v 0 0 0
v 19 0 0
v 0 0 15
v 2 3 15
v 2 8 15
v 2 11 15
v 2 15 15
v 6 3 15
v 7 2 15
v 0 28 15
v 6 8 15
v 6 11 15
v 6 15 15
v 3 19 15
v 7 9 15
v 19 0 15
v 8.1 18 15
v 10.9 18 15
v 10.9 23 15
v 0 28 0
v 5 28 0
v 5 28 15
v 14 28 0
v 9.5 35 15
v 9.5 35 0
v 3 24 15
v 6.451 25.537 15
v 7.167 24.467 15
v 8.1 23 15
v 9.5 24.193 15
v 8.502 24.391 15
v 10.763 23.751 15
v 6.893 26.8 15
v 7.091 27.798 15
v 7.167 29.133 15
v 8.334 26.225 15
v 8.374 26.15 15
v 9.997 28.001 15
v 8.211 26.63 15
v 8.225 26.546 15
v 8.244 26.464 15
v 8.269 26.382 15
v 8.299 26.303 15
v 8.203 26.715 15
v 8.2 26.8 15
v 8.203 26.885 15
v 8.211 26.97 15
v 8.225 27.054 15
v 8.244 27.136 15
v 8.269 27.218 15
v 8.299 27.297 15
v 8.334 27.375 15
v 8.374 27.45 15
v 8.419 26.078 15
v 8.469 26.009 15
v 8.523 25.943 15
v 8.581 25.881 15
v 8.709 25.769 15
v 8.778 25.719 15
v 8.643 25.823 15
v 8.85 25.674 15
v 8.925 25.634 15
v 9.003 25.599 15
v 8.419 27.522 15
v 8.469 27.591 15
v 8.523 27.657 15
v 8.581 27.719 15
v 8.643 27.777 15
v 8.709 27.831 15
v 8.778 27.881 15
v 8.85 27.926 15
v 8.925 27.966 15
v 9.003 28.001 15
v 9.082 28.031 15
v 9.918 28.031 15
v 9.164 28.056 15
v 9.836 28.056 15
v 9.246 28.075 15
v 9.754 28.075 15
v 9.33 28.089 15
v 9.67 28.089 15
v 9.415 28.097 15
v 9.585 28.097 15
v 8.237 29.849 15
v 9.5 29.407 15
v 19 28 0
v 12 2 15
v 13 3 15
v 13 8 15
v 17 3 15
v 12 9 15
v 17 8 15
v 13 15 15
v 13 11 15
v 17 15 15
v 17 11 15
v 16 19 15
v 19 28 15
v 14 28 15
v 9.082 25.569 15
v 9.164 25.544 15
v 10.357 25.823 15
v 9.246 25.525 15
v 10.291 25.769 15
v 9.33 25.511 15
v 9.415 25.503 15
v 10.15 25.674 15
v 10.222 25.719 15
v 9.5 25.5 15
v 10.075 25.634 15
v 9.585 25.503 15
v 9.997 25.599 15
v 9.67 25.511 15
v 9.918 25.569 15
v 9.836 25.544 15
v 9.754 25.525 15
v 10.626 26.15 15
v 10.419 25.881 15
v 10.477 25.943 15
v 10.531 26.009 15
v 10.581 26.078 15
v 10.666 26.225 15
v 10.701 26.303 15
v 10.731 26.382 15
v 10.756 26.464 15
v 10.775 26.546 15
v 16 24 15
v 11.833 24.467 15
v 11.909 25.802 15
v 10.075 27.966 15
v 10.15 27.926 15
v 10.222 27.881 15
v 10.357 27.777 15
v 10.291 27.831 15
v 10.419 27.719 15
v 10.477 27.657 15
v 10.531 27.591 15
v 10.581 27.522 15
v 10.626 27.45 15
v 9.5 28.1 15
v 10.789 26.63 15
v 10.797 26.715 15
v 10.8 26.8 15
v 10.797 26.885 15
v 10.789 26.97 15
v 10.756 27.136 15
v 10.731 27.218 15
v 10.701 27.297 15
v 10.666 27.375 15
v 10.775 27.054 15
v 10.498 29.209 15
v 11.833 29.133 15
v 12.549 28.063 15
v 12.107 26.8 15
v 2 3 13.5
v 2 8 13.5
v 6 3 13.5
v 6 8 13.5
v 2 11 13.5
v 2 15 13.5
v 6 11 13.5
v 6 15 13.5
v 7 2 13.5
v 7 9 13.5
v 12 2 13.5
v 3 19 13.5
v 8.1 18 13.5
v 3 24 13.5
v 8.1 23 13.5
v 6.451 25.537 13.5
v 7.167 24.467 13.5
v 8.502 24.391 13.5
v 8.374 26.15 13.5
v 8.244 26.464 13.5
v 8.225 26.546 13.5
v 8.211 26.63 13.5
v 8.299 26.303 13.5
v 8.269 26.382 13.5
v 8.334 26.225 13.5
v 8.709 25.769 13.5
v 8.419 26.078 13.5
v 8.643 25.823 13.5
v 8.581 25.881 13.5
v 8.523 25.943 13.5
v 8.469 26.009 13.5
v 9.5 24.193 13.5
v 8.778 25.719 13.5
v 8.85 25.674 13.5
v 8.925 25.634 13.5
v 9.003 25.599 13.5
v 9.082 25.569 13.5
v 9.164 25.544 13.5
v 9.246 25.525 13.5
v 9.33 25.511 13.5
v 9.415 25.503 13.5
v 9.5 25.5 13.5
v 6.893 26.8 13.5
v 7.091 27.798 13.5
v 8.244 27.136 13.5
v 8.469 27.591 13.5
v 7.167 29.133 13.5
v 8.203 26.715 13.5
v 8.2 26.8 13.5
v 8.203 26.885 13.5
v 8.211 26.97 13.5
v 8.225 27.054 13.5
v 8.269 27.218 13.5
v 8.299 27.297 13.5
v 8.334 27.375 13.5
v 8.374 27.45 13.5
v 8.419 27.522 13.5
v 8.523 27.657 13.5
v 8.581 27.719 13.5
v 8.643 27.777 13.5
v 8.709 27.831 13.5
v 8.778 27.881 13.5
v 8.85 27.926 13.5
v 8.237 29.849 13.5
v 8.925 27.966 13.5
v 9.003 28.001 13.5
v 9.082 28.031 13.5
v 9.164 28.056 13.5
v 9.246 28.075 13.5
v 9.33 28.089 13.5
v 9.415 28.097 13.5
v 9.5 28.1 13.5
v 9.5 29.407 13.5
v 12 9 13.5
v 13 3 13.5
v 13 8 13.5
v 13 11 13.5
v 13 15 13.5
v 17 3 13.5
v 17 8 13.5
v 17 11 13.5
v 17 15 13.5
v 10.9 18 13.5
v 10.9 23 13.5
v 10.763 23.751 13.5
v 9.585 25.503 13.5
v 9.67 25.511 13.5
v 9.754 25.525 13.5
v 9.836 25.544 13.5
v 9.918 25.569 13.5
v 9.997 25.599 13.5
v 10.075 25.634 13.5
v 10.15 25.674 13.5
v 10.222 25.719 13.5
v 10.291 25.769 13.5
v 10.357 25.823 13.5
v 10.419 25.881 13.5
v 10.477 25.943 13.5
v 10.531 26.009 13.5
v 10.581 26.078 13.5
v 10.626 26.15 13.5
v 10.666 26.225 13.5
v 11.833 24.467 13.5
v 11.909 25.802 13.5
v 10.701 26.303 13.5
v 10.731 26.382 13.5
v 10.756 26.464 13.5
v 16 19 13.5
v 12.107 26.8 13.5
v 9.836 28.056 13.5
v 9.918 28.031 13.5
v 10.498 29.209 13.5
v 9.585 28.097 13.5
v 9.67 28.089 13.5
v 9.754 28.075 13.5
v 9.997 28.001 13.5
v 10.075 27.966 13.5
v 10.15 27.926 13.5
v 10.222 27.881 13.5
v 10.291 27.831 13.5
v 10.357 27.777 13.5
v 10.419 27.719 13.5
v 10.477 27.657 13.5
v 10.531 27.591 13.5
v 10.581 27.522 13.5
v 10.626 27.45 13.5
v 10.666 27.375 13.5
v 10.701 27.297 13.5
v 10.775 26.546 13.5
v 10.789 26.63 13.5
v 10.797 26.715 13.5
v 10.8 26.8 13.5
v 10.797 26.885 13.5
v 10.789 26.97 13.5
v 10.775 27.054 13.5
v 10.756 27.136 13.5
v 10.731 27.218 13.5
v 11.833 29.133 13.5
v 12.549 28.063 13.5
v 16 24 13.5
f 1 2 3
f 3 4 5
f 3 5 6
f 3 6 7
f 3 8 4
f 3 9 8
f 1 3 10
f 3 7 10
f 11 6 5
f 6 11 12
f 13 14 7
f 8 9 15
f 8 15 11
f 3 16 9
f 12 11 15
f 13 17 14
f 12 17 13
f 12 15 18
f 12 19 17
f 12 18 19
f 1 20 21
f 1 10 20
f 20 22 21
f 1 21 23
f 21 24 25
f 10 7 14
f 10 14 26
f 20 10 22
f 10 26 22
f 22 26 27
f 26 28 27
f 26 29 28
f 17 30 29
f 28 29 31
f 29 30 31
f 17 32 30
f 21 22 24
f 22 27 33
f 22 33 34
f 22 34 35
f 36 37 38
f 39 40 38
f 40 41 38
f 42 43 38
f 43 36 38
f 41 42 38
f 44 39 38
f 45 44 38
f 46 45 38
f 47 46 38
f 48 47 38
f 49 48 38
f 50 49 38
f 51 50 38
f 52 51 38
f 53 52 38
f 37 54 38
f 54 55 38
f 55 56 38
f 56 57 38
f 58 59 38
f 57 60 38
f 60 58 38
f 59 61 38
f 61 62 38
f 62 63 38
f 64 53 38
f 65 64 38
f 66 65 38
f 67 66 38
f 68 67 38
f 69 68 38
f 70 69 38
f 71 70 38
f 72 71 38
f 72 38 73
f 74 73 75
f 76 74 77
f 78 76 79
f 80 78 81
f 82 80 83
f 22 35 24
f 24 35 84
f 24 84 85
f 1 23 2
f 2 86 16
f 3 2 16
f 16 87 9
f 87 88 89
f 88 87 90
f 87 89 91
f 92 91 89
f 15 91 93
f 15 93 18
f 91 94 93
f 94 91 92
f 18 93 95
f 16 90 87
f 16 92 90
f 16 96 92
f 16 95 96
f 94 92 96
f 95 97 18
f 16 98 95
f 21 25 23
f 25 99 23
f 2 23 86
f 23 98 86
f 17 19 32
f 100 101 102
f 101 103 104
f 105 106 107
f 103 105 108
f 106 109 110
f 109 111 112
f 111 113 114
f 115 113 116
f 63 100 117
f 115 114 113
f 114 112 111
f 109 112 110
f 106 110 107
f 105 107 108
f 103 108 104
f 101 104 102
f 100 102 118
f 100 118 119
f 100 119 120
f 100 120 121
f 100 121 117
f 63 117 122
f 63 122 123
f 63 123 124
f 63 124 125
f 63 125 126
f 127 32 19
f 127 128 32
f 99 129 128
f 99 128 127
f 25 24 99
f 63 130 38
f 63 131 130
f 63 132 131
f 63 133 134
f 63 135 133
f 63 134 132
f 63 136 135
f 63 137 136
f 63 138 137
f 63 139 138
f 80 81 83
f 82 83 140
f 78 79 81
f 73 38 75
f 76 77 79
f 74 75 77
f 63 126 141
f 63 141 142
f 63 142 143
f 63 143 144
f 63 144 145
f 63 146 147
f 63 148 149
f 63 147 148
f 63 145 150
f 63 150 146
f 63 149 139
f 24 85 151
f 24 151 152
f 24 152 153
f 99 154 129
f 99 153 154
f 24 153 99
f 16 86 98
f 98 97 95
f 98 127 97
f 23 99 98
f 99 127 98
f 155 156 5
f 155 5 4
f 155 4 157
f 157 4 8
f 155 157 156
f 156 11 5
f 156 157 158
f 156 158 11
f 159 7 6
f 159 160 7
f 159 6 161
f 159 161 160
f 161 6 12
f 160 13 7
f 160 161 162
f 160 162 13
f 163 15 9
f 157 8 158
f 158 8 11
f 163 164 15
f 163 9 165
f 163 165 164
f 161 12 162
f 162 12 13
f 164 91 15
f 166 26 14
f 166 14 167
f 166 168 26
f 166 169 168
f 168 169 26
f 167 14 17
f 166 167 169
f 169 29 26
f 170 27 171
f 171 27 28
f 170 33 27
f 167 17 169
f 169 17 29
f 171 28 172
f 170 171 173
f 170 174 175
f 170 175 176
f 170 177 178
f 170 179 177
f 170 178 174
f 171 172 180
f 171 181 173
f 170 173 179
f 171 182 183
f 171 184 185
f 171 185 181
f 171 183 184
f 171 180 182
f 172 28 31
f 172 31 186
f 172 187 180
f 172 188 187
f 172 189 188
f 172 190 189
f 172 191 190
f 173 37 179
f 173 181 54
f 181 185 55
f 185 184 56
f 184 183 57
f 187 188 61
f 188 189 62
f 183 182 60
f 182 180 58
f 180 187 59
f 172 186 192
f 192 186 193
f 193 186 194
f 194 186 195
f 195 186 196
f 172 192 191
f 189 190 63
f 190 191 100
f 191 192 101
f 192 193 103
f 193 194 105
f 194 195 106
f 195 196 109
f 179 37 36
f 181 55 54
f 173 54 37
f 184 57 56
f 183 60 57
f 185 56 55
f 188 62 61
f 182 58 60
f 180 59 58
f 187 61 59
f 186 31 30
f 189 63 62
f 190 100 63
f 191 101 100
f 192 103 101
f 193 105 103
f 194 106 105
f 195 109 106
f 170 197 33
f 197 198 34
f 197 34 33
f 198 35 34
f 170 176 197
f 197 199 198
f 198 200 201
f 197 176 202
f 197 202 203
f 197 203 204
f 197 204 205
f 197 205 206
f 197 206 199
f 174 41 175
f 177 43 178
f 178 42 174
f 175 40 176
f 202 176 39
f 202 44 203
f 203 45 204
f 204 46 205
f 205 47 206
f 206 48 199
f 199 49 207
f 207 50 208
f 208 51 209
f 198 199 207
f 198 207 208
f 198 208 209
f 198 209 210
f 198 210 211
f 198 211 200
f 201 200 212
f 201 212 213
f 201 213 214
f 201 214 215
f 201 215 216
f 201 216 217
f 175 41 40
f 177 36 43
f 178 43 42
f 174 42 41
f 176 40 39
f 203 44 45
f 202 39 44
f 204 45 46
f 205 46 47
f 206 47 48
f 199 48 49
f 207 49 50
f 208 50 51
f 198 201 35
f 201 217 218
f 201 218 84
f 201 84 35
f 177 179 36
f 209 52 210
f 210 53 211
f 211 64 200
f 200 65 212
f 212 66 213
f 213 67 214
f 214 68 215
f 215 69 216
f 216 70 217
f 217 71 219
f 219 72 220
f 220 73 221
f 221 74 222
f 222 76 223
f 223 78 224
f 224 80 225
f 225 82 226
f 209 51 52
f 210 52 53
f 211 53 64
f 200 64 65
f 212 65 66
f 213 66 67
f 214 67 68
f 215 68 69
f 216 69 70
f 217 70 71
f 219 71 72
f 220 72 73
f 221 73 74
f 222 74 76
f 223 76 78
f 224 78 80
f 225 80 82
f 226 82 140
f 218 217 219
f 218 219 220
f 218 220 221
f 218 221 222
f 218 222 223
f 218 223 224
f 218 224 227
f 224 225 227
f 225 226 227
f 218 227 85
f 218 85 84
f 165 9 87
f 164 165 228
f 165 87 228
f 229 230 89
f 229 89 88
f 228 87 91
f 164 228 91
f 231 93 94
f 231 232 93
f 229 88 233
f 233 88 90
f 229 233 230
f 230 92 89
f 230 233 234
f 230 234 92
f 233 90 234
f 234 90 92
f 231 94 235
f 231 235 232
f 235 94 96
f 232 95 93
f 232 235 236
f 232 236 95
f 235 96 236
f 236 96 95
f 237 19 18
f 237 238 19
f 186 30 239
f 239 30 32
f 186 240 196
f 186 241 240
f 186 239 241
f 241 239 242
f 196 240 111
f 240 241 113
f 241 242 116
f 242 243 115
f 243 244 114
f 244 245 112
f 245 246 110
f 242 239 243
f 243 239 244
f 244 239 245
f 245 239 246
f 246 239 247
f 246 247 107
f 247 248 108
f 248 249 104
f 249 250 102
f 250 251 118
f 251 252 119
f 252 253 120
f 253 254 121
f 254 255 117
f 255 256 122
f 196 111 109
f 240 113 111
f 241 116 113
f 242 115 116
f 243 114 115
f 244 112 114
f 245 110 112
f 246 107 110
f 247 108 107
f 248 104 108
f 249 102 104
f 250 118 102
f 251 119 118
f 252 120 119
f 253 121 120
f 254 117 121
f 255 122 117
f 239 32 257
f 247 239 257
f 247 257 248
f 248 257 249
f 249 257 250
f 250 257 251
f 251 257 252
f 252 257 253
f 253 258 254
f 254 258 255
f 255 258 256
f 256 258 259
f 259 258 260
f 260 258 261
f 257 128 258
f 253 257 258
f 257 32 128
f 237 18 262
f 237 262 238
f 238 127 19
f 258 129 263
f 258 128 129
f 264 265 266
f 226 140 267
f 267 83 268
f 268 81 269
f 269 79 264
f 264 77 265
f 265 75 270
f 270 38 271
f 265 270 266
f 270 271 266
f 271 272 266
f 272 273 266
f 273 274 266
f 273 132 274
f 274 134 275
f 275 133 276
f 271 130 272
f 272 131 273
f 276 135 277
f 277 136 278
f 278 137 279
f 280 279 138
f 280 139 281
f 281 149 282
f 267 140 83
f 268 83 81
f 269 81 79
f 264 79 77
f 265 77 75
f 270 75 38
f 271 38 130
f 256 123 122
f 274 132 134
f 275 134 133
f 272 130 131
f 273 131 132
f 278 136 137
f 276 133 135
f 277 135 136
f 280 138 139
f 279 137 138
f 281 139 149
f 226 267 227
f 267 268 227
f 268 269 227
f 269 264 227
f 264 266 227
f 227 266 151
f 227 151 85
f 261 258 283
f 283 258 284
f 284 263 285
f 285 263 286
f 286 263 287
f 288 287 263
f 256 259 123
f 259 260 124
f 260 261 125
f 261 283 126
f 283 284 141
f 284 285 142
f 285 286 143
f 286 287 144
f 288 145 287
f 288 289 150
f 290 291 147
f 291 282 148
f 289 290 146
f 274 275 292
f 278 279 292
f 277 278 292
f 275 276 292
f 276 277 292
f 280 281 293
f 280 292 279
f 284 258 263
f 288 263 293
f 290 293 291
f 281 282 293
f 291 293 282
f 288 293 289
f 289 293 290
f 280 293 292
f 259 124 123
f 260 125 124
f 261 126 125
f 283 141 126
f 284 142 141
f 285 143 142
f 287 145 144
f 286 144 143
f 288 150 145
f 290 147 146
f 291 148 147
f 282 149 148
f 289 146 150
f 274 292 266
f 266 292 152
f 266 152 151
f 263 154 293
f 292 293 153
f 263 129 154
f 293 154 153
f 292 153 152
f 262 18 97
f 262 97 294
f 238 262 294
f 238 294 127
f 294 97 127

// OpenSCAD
// Building facade miniature for board games.
// Millimetres. X=width, Y=height, Z=depth.
// Print flat at Z=0; straight base at Y=0; front at Z=15.
// All recesses are blind and 1.5 mm deep. This is a solid piece.
$fn=96;
depth=15;
recess=1.5;
module rect(x,y,w,h) { translate([x,y]) square([w,h]); }
module disc(x,y,r) { translate([x,y]) circle(r=r); }
module line(a,b,w=1.4) {
    hull() { translate(a) circle(d=w); translate(b) circle(d=w); }
}
module frame(x,y,w,h,t=1.4) {
    difference() { rect(x,y,w,h); rect(x+t,y+t,w-2*t,h-2*t); }
}
module gear(x,y,r=6,inner=2.4) {
    translate([x,y]) difference() {
        polygon([for(i=[0:(r<4?15:23)]) let(n=(r<4?16:24),a=(i+1)*360/n,rr=(i%4<2?r:r-min(1.5,r*0.21))) [rr*cos(a),rr*sin(a)]]);
        circle(r=inner);
    }
}
module car(x,y,w=14,h=5) {
    translate([x,y]) union() {
        polygon([[0,0.8],[0,h*0.48],[w*0.2,h*0.48],
                 [w*0.35,h],[w*0.67,h],[w*0.82,h*0.48],
                 [w,h*0.35],[w,0.8]]);
        disc(w*0.23,0.8,1.3); disc(w*0.77,0.8,1.3);
    }
}
module recycling(x,y,r=6) {
    translate([x,y]) for(a=[0,120,240]) rotate(a) {
        line([-3.8,3.2],[1.2,3.2],1.6);
        polygon([[1.2,1.7],[4.2,3.2],[1.2,4.7]]);
    }
}
module cutface() { translate([0,0,depth-recess]) linear_extrude(height=recess+0.5) facade(); }
// All details are recessed into the same solid facade.
difference() {
    linear_extrude(height=depth) outline();
    cutface();
}


module outline() { polygon([[0,0],[19,0],[19,28],[14,28],[9.5,35],[5,28],[0,28]]); }
module facade() {
    rect(7,2,5,7);
    for(x=[2,13]) rect(x,3,4,5);
    for(x=[2,13]) rect(x,11,4,4);
    polygon([[3,19],[8.1,18],[8.1,23],[3,24]]);
    polygon([[10.9,18],[16,19],[16,24],[10.9,23]]);
    gear(9.5,26.8,3.3,1.3);
}
